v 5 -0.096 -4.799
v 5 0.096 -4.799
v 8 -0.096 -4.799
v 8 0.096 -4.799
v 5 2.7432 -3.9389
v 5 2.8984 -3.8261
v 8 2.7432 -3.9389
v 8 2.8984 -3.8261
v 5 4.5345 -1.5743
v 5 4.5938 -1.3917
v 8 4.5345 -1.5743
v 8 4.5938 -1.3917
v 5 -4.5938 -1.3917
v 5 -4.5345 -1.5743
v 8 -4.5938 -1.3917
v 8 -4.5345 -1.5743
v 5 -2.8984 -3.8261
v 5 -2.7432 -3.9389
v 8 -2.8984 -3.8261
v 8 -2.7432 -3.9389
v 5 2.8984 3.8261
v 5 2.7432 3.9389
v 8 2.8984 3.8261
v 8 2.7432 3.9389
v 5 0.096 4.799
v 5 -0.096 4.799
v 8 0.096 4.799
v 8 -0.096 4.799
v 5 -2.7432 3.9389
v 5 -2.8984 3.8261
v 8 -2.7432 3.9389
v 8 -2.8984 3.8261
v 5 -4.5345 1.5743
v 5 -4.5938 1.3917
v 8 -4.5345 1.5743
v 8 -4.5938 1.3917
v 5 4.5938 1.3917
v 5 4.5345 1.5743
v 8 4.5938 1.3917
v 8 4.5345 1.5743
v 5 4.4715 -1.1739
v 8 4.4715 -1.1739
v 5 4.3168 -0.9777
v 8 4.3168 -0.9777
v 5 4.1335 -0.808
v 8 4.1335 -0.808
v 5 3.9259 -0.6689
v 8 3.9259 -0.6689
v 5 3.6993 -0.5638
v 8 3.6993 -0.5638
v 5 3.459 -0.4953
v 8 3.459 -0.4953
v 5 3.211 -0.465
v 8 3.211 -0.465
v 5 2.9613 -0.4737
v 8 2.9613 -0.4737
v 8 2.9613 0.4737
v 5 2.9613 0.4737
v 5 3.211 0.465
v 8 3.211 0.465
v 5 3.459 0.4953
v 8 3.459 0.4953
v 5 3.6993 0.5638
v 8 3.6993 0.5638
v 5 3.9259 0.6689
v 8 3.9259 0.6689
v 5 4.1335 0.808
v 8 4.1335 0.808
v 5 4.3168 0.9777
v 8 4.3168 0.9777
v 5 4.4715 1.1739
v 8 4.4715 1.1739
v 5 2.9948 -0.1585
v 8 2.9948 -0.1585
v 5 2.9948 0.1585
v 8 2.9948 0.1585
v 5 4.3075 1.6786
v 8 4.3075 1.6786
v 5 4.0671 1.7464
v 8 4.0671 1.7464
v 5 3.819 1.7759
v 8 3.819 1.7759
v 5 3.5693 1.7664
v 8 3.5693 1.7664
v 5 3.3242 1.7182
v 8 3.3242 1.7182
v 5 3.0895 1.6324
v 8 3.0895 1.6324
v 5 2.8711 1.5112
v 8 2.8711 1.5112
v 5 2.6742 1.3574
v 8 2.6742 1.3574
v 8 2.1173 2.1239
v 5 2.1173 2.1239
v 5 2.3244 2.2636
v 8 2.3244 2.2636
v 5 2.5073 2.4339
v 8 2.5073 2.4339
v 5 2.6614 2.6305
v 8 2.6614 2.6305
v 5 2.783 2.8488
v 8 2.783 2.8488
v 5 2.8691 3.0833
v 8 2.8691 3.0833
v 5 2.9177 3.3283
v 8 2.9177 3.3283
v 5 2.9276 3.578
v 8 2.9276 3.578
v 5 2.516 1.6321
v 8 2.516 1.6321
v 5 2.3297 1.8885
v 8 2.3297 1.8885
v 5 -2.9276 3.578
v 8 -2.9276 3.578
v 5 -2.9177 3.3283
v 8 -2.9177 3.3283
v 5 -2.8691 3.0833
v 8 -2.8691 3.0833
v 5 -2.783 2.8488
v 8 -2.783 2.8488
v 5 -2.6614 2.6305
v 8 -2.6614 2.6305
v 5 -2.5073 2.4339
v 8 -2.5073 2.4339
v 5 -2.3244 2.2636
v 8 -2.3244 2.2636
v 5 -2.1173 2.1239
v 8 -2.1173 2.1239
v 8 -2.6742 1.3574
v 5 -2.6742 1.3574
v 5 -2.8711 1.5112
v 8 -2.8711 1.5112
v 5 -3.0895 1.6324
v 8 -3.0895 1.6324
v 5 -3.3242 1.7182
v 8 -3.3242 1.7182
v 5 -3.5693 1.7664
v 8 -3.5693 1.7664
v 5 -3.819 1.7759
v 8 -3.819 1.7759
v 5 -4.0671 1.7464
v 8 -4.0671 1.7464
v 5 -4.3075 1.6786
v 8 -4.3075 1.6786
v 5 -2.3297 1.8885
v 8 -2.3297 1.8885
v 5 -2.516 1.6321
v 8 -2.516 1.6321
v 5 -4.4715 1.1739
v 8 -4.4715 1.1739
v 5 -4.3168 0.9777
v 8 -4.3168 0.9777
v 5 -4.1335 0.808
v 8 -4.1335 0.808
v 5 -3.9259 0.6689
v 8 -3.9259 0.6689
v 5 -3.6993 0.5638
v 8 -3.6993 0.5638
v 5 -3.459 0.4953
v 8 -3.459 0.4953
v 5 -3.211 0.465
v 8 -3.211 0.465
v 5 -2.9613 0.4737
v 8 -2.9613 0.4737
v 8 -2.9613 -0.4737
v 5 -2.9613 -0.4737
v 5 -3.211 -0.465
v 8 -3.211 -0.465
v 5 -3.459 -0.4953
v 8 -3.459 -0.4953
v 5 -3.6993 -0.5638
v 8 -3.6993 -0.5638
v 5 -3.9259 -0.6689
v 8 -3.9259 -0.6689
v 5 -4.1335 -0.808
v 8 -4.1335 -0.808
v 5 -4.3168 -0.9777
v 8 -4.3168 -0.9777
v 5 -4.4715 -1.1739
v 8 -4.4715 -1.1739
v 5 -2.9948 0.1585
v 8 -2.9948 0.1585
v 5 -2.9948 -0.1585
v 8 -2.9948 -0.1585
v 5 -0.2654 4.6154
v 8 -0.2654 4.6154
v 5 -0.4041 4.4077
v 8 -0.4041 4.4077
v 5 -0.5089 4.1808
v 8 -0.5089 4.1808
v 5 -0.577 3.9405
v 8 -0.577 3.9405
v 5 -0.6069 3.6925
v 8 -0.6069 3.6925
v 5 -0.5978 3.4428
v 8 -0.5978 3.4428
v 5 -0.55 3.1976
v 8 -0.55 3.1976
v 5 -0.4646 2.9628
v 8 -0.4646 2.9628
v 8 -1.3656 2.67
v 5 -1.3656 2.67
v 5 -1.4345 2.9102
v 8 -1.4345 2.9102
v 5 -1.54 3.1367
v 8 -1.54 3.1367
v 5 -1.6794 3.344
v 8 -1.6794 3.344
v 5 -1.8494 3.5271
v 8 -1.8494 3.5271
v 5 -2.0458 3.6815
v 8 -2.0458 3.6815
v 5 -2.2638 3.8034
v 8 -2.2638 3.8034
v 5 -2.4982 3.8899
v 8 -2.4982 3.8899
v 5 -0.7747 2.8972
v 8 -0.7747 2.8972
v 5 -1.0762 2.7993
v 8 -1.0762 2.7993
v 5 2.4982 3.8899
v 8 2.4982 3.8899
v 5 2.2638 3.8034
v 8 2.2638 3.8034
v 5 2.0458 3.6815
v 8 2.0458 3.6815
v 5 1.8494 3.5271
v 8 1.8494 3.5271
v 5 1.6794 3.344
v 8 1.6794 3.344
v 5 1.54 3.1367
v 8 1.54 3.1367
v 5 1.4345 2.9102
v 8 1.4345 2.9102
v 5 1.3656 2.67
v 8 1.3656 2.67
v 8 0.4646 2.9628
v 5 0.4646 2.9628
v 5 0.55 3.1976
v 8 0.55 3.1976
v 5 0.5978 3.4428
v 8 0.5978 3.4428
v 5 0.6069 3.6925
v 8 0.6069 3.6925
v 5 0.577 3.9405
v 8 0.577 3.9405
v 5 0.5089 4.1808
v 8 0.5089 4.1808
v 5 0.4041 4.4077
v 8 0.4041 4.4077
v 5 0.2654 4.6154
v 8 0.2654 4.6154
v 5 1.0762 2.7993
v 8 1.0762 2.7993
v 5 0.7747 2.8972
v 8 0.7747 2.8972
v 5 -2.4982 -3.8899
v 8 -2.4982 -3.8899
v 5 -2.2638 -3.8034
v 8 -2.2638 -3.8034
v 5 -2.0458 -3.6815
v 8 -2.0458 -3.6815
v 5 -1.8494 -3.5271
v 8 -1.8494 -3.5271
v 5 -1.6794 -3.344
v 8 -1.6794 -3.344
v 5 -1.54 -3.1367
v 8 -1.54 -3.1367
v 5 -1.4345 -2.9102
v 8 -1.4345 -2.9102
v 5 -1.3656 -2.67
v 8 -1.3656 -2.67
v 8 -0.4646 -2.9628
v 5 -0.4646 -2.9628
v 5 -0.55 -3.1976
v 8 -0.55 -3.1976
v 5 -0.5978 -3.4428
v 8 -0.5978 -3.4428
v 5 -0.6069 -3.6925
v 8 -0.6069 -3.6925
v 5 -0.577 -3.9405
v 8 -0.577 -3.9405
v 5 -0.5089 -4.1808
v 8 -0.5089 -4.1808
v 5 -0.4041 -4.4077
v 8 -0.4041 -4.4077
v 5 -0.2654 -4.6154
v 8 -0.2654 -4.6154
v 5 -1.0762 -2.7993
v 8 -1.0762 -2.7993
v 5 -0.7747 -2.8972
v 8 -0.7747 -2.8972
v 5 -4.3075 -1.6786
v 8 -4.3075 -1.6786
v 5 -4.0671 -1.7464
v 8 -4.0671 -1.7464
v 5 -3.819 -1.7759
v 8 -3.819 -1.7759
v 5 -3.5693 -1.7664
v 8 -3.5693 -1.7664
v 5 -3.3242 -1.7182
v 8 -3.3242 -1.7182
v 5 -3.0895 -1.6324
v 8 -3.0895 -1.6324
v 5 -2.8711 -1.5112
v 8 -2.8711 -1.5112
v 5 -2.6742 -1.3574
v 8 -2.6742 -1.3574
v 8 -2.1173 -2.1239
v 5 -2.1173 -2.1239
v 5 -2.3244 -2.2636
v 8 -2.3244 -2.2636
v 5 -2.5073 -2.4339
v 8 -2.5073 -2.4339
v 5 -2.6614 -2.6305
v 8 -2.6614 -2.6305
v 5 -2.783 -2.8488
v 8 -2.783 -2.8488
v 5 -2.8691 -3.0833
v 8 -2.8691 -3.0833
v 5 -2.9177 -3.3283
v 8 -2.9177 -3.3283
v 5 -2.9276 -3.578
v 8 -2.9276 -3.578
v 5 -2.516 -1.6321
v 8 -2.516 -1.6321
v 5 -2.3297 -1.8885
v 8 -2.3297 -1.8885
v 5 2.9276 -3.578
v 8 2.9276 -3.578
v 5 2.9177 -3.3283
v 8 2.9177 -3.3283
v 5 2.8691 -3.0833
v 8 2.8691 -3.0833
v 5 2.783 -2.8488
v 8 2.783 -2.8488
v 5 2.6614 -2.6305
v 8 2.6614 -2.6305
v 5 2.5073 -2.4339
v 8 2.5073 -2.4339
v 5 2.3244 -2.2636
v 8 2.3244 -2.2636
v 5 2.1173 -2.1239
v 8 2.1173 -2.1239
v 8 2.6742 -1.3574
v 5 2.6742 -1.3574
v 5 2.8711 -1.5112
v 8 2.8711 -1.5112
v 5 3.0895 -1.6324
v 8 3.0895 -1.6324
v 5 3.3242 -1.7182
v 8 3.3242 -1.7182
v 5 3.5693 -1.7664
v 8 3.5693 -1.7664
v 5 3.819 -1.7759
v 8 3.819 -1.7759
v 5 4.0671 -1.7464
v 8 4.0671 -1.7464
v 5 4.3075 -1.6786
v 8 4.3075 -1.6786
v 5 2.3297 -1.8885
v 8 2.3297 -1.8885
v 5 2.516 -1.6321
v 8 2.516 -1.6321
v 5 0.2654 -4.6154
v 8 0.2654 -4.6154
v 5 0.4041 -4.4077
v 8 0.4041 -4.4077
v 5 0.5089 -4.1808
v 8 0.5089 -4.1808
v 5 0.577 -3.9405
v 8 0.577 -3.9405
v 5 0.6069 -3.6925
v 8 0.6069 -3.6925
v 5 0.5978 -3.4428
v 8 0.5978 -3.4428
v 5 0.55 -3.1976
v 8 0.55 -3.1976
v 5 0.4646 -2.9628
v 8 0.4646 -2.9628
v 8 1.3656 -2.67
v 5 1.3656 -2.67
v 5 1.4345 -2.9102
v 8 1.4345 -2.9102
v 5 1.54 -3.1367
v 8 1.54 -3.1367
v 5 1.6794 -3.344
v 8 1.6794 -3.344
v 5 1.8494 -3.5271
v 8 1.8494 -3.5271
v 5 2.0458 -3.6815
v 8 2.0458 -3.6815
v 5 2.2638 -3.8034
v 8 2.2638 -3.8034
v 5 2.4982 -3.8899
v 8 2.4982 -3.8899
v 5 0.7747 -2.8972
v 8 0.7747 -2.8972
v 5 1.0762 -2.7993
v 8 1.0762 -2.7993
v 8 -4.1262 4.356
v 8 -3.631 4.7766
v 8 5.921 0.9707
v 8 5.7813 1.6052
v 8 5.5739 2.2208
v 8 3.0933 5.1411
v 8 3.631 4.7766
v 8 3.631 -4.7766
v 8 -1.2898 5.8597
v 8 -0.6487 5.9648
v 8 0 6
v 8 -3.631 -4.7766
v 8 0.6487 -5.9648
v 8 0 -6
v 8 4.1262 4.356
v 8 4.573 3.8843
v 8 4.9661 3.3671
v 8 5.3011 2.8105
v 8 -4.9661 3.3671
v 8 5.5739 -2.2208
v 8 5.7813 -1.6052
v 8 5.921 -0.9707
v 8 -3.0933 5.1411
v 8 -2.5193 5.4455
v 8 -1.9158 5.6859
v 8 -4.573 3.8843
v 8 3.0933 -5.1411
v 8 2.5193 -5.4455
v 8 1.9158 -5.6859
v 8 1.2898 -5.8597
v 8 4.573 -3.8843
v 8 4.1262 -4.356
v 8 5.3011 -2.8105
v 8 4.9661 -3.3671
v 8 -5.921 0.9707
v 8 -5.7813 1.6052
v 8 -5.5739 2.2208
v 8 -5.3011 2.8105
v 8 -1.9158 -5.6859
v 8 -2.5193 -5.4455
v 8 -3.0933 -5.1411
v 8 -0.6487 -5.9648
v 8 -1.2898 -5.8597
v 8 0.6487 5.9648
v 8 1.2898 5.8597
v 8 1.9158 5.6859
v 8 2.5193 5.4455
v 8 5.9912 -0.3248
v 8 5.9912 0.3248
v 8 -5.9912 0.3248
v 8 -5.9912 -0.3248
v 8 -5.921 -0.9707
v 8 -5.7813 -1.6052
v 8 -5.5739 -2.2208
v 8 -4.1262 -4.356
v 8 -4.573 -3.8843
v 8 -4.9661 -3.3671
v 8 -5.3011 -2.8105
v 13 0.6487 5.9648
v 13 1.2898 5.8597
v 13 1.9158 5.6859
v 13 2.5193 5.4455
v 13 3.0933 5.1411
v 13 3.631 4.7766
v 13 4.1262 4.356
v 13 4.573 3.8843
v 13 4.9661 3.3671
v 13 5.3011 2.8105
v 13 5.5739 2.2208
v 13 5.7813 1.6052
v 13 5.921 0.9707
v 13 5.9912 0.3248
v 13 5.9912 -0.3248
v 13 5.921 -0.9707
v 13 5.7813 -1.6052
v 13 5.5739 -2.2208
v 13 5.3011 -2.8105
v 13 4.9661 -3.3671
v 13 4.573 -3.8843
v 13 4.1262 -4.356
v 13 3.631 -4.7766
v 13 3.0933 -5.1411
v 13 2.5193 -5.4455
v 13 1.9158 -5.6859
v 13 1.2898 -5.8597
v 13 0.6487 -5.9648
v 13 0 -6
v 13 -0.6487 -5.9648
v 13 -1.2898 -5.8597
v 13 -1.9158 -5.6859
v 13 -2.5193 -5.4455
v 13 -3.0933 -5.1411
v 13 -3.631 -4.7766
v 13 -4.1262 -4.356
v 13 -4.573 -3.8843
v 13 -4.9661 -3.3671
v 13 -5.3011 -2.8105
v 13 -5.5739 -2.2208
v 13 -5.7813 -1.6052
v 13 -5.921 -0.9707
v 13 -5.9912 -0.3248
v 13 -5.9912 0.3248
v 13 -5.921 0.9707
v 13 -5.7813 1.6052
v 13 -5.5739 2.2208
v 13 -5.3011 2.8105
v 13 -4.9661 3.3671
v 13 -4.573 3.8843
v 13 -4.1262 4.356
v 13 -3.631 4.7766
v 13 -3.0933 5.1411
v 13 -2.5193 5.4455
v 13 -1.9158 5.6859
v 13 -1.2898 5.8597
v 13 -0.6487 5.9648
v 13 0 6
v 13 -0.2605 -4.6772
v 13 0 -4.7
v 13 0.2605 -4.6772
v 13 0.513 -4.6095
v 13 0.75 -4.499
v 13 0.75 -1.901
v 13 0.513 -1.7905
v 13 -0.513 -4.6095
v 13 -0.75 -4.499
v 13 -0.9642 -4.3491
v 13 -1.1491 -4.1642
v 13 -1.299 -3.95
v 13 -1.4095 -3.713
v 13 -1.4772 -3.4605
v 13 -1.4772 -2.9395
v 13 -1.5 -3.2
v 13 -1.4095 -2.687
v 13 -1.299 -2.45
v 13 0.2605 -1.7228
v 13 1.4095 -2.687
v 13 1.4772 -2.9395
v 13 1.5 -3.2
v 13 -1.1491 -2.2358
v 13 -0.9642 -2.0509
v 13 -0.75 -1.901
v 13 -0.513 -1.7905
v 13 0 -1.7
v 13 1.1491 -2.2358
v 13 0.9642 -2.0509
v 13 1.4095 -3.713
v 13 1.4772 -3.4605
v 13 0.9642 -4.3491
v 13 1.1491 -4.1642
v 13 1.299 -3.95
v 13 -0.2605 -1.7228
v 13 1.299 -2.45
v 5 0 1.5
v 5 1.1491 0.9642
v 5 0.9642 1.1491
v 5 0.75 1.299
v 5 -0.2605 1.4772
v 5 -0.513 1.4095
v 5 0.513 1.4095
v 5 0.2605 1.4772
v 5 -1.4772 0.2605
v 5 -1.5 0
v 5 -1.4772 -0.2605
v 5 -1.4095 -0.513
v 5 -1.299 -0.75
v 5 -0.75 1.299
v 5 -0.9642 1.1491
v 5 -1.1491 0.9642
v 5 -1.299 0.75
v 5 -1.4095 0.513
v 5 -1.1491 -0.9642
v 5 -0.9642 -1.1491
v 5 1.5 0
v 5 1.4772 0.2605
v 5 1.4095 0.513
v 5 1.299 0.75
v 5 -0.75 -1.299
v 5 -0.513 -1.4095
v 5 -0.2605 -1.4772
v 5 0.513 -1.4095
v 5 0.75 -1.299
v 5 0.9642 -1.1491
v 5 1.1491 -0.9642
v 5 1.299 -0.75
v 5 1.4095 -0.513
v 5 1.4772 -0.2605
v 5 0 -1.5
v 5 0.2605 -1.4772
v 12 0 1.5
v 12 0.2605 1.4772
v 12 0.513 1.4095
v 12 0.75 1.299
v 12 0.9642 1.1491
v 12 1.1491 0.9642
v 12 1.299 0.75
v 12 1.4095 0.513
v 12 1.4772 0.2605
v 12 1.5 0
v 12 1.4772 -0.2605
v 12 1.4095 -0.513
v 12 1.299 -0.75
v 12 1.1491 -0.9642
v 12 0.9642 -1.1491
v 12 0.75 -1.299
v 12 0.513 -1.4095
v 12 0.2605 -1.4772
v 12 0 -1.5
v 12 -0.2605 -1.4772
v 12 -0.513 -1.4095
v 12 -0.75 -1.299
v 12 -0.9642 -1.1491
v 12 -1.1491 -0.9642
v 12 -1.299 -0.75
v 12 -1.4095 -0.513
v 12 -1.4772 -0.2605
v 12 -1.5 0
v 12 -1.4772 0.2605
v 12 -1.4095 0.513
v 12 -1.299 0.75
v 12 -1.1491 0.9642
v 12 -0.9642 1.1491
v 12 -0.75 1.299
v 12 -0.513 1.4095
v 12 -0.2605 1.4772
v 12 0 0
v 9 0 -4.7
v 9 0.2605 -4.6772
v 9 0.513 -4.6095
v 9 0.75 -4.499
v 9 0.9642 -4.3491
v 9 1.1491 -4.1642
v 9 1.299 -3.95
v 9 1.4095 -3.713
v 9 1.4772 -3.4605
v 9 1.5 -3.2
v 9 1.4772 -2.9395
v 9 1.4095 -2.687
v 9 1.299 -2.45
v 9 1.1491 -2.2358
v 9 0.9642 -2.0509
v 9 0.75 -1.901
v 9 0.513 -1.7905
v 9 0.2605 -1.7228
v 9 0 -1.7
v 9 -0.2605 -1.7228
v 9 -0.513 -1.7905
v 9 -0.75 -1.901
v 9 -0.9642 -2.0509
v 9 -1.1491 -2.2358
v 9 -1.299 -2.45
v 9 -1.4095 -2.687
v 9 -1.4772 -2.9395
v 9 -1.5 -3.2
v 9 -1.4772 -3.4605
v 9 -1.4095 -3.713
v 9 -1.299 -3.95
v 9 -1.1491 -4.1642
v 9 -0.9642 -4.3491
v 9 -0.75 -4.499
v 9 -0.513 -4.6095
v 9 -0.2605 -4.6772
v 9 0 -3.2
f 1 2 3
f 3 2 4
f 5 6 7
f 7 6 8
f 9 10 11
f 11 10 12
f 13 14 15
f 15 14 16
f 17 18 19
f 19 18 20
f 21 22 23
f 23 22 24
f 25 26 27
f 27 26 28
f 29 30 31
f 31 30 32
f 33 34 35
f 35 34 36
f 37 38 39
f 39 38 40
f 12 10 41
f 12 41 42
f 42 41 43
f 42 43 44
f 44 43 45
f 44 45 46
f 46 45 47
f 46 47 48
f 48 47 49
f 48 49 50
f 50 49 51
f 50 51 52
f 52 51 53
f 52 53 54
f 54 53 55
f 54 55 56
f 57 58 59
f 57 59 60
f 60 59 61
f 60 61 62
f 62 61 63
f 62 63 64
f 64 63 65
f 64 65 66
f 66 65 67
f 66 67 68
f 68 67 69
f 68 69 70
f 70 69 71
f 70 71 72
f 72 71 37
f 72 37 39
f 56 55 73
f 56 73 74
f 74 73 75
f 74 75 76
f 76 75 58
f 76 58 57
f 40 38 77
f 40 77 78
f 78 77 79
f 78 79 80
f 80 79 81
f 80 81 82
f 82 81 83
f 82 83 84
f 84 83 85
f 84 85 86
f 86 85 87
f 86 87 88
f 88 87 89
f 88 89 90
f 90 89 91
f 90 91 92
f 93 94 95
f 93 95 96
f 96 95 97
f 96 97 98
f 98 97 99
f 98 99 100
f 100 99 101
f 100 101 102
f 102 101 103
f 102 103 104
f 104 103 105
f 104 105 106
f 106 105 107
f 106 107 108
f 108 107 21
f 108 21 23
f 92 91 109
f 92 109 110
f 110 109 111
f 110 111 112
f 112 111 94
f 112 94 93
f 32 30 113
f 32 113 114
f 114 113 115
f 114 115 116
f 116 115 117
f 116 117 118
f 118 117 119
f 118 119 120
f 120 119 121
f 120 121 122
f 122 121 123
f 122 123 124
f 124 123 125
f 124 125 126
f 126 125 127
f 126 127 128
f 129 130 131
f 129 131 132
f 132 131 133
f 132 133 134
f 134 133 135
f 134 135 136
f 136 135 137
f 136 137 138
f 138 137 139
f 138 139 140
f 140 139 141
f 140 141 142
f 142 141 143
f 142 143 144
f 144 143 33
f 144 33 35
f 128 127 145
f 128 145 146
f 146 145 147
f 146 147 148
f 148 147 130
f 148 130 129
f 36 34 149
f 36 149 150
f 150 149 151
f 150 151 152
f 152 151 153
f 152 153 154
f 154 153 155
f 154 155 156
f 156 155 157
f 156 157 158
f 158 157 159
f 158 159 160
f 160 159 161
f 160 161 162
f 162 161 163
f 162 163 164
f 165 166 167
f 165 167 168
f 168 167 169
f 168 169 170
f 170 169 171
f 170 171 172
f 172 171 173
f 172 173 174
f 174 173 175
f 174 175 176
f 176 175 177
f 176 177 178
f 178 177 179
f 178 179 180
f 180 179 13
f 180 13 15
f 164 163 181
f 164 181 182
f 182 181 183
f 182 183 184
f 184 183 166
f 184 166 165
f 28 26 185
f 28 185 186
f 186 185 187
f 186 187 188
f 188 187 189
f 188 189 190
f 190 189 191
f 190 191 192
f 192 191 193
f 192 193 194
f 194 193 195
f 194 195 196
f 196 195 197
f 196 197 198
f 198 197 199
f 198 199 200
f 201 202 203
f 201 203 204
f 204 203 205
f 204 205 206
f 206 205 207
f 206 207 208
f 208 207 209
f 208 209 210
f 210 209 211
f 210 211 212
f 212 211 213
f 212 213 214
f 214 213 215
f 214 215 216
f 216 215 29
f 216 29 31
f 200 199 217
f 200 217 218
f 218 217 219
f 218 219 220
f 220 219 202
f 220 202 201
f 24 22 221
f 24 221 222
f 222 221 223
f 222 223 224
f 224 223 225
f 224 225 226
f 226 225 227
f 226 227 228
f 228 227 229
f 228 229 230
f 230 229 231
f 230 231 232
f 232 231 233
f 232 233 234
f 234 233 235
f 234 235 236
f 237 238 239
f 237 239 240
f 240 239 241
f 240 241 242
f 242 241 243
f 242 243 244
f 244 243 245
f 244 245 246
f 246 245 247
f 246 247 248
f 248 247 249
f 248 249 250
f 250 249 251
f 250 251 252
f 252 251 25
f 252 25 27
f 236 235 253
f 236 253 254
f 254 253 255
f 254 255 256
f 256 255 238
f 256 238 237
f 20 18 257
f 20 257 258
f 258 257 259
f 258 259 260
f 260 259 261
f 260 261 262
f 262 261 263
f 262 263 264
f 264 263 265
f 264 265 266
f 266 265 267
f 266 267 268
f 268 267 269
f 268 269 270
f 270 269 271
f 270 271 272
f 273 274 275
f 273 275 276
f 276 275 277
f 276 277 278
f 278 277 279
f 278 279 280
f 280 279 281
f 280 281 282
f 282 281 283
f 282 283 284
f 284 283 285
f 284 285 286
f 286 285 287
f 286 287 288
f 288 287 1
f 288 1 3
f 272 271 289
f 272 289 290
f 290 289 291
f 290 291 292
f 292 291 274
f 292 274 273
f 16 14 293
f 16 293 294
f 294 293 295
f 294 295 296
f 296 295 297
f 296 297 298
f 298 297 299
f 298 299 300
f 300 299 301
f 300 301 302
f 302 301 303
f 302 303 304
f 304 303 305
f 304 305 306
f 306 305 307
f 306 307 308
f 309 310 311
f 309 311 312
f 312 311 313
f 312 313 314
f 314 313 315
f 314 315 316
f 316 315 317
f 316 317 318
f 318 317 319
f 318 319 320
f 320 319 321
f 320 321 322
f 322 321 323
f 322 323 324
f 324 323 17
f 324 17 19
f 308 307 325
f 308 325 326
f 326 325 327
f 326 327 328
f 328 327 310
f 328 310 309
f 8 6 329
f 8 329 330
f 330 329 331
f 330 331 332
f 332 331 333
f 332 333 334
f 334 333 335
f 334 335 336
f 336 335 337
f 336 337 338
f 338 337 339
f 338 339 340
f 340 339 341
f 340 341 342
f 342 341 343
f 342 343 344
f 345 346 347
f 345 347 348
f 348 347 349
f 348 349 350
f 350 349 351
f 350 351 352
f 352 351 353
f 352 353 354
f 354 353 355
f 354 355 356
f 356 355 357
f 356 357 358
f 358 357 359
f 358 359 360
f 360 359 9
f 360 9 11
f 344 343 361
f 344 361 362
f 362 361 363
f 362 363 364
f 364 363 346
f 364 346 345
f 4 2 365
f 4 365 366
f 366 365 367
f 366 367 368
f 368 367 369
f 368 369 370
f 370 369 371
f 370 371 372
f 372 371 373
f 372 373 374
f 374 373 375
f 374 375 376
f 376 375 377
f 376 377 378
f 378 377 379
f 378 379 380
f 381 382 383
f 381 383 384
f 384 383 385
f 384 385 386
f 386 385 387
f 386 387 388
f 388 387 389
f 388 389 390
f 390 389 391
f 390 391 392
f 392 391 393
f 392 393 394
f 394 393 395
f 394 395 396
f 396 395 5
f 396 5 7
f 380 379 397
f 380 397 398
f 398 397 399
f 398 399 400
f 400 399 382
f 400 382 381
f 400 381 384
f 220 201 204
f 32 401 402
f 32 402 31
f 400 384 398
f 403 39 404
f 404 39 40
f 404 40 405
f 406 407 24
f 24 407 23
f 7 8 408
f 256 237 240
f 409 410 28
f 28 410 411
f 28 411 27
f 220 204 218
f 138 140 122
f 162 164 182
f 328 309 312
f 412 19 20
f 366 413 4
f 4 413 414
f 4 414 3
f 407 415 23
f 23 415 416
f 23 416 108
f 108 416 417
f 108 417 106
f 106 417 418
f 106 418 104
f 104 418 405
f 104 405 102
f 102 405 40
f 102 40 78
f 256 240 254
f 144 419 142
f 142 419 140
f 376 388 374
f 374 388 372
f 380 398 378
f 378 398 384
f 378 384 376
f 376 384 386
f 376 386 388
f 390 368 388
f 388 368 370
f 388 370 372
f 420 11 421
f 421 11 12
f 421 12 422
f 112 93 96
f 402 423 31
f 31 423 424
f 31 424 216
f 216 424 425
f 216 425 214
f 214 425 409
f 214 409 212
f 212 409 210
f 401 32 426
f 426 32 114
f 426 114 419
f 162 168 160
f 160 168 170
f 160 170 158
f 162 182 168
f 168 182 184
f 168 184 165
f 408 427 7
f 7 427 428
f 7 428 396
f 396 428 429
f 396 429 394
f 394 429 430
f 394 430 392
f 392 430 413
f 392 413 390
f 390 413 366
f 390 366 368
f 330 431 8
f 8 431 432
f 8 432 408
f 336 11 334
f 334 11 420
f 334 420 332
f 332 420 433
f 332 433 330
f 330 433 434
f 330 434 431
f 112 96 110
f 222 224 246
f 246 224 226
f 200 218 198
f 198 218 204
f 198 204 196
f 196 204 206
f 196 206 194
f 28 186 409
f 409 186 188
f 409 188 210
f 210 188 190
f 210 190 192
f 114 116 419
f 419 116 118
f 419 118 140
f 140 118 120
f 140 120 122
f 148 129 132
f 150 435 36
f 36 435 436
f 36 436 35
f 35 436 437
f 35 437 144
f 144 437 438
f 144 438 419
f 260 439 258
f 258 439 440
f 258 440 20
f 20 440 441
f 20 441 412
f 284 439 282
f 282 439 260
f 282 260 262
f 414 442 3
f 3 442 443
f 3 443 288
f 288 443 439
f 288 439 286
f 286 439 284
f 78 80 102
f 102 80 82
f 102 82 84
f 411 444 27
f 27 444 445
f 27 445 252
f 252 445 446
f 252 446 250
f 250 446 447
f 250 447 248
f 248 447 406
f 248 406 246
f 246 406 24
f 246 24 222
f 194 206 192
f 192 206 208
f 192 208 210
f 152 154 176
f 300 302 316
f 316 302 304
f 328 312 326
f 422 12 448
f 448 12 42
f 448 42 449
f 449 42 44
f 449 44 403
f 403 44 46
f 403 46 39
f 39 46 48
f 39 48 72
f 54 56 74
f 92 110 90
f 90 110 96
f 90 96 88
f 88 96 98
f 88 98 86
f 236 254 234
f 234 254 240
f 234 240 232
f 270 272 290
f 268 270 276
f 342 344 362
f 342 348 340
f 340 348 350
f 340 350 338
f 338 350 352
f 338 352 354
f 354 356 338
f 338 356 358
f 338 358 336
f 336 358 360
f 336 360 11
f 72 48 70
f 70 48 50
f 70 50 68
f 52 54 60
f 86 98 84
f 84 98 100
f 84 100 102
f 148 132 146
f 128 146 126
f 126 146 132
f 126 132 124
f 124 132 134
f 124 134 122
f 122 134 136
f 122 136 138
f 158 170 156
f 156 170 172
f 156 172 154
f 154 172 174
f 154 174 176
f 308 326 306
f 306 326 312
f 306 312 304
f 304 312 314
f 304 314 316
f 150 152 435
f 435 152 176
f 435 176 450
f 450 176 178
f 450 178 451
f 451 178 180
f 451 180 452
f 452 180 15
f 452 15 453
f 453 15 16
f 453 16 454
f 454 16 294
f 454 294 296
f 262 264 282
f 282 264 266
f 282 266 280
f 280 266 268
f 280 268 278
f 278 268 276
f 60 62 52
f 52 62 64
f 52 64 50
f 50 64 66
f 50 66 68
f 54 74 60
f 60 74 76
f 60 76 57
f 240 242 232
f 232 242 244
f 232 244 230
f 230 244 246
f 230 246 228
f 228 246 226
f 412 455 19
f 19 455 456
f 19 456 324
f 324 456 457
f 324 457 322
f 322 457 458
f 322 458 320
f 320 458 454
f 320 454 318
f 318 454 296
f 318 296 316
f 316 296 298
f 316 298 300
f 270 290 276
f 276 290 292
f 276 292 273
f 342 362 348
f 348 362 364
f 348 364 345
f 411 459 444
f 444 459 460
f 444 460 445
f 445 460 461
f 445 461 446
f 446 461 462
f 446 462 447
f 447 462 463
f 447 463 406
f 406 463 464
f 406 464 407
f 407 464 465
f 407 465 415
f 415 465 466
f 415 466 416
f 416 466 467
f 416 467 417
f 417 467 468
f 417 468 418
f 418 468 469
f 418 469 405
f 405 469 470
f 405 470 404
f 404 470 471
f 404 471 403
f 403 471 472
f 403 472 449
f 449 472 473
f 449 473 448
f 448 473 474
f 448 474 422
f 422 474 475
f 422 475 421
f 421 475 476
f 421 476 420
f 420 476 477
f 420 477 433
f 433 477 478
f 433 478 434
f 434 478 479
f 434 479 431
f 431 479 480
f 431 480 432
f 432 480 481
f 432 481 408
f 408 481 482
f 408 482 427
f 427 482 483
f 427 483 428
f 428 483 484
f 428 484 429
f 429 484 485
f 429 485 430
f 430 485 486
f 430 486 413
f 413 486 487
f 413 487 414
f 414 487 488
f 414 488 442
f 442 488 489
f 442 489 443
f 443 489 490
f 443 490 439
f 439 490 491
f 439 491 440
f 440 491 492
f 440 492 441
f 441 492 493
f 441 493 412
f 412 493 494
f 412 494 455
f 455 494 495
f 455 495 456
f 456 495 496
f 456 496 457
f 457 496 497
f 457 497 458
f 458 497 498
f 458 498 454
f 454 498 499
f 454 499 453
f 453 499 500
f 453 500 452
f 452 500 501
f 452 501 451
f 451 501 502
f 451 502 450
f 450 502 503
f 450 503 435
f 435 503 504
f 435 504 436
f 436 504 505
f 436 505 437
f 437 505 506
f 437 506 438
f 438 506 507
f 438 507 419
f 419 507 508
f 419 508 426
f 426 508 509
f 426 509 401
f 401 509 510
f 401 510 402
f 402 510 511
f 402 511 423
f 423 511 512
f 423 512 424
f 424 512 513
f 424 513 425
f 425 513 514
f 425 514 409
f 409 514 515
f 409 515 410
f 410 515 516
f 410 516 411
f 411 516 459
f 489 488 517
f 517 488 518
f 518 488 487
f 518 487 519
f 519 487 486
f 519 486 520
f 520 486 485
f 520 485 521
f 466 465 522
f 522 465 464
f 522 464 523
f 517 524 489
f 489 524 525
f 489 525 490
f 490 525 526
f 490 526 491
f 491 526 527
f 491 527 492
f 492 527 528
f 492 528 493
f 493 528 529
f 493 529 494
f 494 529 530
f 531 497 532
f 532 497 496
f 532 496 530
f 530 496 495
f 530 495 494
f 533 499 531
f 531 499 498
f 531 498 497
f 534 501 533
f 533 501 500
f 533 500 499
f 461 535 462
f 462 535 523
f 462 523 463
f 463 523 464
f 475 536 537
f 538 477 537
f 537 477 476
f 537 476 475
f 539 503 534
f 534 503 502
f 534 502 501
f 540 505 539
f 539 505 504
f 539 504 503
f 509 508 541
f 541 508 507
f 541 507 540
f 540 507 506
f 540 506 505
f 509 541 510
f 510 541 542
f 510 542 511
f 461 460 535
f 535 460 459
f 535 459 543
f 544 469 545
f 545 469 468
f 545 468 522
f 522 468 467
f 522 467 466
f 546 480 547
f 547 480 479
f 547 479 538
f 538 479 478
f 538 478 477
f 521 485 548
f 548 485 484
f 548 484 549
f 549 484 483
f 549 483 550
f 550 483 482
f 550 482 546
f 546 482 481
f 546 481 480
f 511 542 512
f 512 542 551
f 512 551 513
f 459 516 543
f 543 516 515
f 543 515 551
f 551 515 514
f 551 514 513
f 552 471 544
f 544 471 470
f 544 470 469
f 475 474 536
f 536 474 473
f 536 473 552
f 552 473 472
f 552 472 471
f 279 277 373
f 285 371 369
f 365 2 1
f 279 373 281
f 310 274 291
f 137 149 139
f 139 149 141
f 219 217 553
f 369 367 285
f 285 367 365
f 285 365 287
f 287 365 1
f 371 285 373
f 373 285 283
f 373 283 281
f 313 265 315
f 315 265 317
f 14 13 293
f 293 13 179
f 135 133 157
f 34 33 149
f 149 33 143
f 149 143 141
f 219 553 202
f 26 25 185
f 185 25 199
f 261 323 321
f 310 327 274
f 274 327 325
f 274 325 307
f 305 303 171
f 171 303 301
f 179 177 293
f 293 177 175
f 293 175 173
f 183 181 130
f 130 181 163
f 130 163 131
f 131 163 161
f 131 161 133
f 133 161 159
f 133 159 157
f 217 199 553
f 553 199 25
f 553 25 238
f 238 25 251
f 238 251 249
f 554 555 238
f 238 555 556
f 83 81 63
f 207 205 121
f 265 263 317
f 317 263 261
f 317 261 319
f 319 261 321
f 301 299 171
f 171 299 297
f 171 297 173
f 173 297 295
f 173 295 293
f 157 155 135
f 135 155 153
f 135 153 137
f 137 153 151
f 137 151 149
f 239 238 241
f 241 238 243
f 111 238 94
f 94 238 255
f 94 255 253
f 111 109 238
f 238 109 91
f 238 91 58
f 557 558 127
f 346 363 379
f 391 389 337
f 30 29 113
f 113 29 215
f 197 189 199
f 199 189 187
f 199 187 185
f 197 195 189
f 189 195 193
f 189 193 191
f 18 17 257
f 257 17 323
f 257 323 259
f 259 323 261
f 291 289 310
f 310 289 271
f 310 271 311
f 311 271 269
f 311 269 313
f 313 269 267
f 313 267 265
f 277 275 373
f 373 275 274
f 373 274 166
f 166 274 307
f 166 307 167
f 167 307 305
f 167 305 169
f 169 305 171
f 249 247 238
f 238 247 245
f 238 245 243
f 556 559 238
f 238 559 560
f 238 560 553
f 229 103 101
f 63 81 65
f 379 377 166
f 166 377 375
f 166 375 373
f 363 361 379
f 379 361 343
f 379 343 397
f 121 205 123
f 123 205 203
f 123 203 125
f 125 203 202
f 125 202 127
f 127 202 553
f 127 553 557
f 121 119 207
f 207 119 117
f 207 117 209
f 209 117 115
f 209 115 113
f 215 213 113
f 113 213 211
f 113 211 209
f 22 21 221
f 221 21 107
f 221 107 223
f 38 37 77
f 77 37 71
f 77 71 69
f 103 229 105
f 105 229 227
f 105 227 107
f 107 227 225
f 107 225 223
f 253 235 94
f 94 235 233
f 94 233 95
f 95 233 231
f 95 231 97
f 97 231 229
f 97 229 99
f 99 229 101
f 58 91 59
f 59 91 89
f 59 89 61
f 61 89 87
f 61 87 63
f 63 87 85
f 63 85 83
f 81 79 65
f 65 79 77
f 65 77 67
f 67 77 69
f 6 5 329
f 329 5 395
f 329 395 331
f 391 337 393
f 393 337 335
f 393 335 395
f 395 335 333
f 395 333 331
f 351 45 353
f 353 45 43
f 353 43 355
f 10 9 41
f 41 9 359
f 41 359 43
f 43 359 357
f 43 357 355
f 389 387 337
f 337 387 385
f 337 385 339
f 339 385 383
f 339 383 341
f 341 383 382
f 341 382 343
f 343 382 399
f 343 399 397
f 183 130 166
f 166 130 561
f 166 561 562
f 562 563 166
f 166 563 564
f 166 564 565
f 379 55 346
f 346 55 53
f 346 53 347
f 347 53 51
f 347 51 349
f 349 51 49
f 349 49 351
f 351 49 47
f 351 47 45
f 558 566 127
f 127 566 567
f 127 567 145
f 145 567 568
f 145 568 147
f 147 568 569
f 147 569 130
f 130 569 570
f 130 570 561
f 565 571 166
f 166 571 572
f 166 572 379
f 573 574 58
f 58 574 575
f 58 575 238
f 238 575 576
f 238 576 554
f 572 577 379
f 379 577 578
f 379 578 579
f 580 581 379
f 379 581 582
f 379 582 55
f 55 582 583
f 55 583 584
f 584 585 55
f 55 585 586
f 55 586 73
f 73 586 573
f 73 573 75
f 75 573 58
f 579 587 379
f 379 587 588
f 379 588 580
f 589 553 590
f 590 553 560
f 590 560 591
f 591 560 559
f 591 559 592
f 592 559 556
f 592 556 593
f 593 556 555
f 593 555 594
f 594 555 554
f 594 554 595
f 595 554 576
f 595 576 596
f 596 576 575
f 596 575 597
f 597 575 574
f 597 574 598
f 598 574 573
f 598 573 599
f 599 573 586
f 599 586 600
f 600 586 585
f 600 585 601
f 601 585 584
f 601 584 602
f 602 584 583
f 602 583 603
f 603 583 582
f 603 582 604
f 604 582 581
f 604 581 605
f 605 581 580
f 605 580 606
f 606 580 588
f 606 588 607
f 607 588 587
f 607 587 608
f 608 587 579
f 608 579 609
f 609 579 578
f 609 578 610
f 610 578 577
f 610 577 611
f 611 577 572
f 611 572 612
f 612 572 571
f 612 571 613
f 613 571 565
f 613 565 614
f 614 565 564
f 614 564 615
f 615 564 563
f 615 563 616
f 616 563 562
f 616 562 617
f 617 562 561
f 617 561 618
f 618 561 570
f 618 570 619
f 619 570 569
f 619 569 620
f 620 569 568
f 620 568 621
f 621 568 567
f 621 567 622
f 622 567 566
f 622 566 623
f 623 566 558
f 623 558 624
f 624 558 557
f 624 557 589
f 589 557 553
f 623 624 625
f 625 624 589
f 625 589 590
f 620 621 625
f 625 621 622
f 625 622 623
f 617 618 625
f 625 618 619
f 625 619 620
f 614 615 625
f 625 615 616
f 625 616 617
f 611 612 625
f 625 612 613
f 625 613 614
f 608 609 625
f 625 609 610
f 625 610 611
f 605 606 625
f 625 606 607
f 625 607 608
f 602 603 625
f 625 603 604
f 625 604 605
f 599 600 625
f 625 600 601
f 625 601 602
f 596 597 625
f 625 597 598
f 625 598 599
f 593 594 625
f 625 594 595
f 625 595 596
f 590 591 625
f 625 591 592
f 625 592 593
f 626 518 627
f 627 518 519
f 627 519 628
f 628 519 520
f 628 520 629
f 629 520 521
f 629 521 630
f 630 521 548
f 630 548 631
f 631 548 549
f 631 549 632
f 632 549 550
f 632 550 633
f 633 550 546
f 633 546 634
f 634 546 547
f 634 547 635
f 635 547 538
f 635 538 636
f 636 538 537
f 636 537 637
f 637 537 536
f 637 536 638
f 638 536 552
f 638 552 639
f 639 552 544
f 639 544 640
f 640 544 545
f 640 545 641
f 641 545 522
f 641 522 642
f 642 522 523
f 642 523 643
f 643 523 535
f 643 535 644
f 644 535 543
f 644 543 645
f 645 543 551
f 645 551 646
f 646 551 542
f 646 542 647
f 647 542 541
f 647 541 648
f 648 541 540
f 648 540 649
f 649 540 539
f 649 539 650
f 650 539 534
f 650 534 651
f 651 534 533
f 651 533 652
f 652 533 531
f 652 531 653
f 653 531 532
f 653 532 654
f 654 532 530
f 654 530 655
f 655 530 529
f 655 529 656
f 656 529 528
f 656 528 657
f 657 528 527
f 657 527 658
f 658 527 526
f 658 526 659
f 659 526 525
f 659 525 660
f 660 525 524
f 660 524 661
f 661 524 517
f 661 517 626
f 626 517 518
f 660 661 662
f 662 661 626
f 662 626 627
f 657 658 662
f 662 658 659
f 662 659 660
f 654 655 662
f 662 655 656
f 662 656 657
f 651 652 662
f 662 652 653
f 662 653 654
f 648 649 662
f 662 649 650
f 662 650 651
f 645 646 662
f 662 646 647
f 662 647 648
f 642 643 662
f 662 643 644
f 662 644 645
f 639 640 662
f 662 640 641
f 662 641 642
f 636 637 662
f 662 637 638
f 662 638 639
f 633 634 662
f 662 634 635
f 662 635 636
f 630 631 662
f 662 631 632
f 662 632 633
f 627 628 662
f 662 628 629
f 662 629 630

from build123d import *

# Parameters (mm, degrees)
BASPROSKE_W         = 8
BASPROSKE_H         = 4.8
TOOTHCUT_DEPTH      = 11.491901639
TEETHCUTS_COUNT     = 10
BORSKE_R            = 0.4
BORE_DEPTH          = 18.0000508
SKETCH1_R           = 6
BOSS_EXTRUDE1_DEPTH = 5
CUT_EXTRUDE1_DEPTH  = 5
SKETCH4_R           = 1.5
CUT_EXTRUDE2_DEPTH  = 7
SKETCH8_R           = 1.5
CUT_EXTRUDE8_DEPTH  = 4


with BuildPart() as part:
    # BasProSke → Base-Revolve (revolve)
    with BuildSketch(Plane(origin=(0, 0, 0), x_dir=(1, 0, 0), z_dir=(0, 1, 0)), mode=Mode.PRIVATE) as base_revolve_sk:
        with Locations((4, 2.4)):
            Rectangle(BASPROSKE_W, BASPROSKE_H)
    revolve(base_revolve_sk.sketch.rotate(Axis((-10, 0, 0), (1, 0, 0)), 180), axis=Axis((-10, 0, 0), (1, 0, 0)))

    # TooCutSke → ToothCut (cut, through all)
    with BuildSketch(Plane(origin=(0, 0, 0), x_dir=(0, 0, -1), z_dir=(1, 0, 0))):
        with BuildLine():
            ThreePointArc((0.473726058, 2.961348446), (0, 2.999), (-0.473726058, 2.961348446))
            ThreePointArc((-0.473726058, 2.961348446), (-0.678470427, 3.942691912), (-1.42693485, 4.6095924))
            ThreePointArc((-1.42693485, 4.6095924), (0, 4.8254), (1.42693485, 4.6095924))
            ThreePointArc((1.42693485, 4.6095924), (0.678470427, 3.942691912), (0.473726058, 2.961348446))
        make_face()
    toothcut = extrude(amount=TOOTHCUT_DEPTH, mode=Mode.SUBTRACT)

    # TeethCuts: ToothCut ×10 about axis
    teethcuts_axis = Axis((0, 0, 0), (1, 0, 0))
    for i in range(1, TEETHCUTS_COUNT):
        add(toothcut.rotate(teethcuts_axis, i * 360 / TEETHCUTS_COUNT), mode=Mode.SUBTRACT)

    # BorSke → Bore (cut, symmetric)
    with BuildSketch(Plane(origin=(0, 0, 0), x_dir=(0, 0, -1), z_dir=(1, 0, 0))):
        with Locations(Location((0, 0, 0), (0, 0, 180))):
            Circle(BORSKE_R)
    extrude(amount=BORE_DEPTH, both=True, mode=Mode.SUBTRACT)

    # Sketch1 → Boss-Extrude1 (add)
    with BuildSketch(Plane(origin=(8, 0, 0), x_dir=(0, 0, -1), z_dir=(1, 0, 0))):
        Circle(SKETCH1_R)
    extrude(amount=BOSS_EXTRUDE1_DEPTH)

    # Sketch2 → Cut-Extrude1 (cut)
    with BuildSketch(Plane.ZY):
        with BuildLine():
            ThreePointArc((-2.96279914, 0.464566741), (-3.940487364, 0.57700657), (-4.799040651, 0.09596267))
            ThreePointArc((-4.799040651, 0.09596267), (-4.8, 0), (-4.799040651, -0.09596267))
            ThreePointArc((-4.799040651, -0.09596267), (-3.940487364, -0.57700657), (-2.96279914, -0.464566741))
            ThreePointArc((-2.96279914, -0.464566741), (-2.852218492, -0.926741966), (-2.670020334, -1.365647251))
            ThreePointArc((-2.670020334, -1.365647251), (-3.527077196, -1.849352238), (-3.938910885, -2.743169889))
            ThreePointArc((-3.938910885, -2.743169889), (-3.883281573, -2.821369211), (-3.826100001, -2.898440751))
            ThreePointArc((-3.826100001, -2.898440751), (-2.848765291, -2.782968481), (-2.123889376, -2.117332029))
            ThreePointArc((-2.123889376, -2.117332029), (-1.762767972, -2.426241966), (-1.357384512, -2.67423041))
            ThreePointArc((-1.357384512, -2.67423041), (-1.76644342, -3.569321349), (-1.574251041, -4.534504787))
            ThreePointArc((-1.574251041, -4.534504787), (-1.483281573, -4.565071278), (-1.391719195, -4.593812979))
            ThreePointArc((-1.391719195, -4.593812979), (-0.668911703, -3.925931021), (-0.473726058, -2.961348446))
            ThreePointArc((-0.473726058, -2.961348446), (0, -2.999), (0.473726058, -2.961348446))
            ThreePointArc((0.473726058, -2.961348446), (0.668911703, -3.925931021), (1.391719195, -4.593812979))
            ThreePointArc((1.391719195, -4.593812979), (1.483281573, -4.565071278), (1.574251041, -4.534504787))
            ThreePointArc((1.574251041, -4.534504787), (1.76644342, -3.569321349), (1.357384512, -2.67423041))
            ThreePointArc((1.357384512, -2.67423041), (1.762767972, -2.426241966), (2.123889376, -2.117332029))
            ThreePointArc((2.123889376, -2.117332029), (2.848765291, -2.782968481), (3.826100001, -2.898440751))
            ThreePointArc((3.826100001, -2.898440751), (3.883281573, -2.821369211), (3.938910885, -2.743169889))
            ThreePointArc((3.938910885, -2.743169889), (3.527077196, -1.849352238), (2.670020334, -1.365647251))
            ThreePointArc((2.670020334, -1.365647251), (2.852218492, -0.926741966), (2.96279914, -0.464566741))
            ThreePointArc((2.96279914, -0.464566741), (3.940487364, -0.57700657), (4.799040651, -0.09596267))
            ThreePointArc((4.799040651, -0.09596267), (4.8, 0), (4.799040651, 0.09596267))
            ThreePointArc((4.799040651, 0.09596267), (3.940487364, 0.57700657), (2.96279914, 0.464566741))
            ThreePointArc((2.96279914, 0.464566741), (2.852218492, 0.926741966), (2.670020334, 1.365647251))
            ThreePointArc((2.670020334, 1.365647251), (3.527077196, 1.849352238), (3.938910885, 2.743169889))
            ThreePointArc((3.938910885, 2.743169889), (3.883281573, 2.821369211), (3.826100001, 2.898440751))
            ThreePointArc((3.826100001, 2.898440751), (2.848765291, 2.782968481), (2.123889376, 2.117332029))
            ThreePointArc((2.123889376, 2.117332029), (1.762767972, 2.426241966), (1.357384512, 2.67423041))
            ThreePointArc((1.357384512, 2.67423041), (1.76644342, 3.569321349), (1.574251041, 4.534504787))
            ThreePointArc((1.574251041, 4.534504787), (1.483281573, 4.565071278), (1.391719195, 4.593812979))
            ThreePointArc((1.391719195, 4.593812979), (0.668911703, 3.925931021), (0.473726058, 2.961348446))
            ThreePointArc((0.473726058, 2.961348446), (0, 2.999), (-0.473726058, 2.961348446))
            ThreePointArc((-0.473726058, 2.961348446), (-0.668911703, 3.925931021), (-1.391719195, 4.593812979))
            ThreePointArc((-1.391719195, 4.593812979), (-1.483281573, 4.565071278), (-1.574251041, 4.534504787))
            ThreePointArc((-1.574251041, 4.534504787), (-1.76644342, 3.569321349), (-1.357384512, 2.67423041))
            ThreePointArc((-1.357384512, 2.67423041), (-1.762767972, 2.426241966), (-2.123889376, 2.117332029))
            ThreePointArc((-2.123889376, 2.117332029), (-2.848765291, 2.782968481), (-3.826100001, 2.898440751))
            ThreePointArc((-3.826100001, 2.898440751), (-3.883281573, 2.821369211), (-3.938910885, 2.743169889))
            ThreePointArc((-3.938910885, 2.743169889), (-3.527077196, 1.849352238), (-2.670020334, 1.365647251))
            ThreePointArc((-2.670020334, 1.365647251), (-2.852218492, 0.926741966), (-2.96279914, 0.464566741))
        make_face()
    extrude(amount=-CUT_EXTRUDE1_DEPTH, mode=Mode.SUBTRACT)

    # Sketch4 → Cut-Extrude2 (cut)
    with BuildSketch(Plane.ZY.offset(-5)):
        Circle(SKETCH4_R)
    extrude(amount=-CUT_EXTRUDE2_DEPTH, mode=Mode.SUBTRACT)

    # Sketch8 → Cut-Extrude8 (cut)
    with BuildSketch(Plane(origin=(13, 0, 0), x_dir=(0, 0, -1), z_dir=(1, 0, 0))):
        with Locations((3.2, 0)):
            Circle(SKETCH8_R)
    extrude(amount=-CUT_EXTRUDE8_DEPTH, mode=Mode.SUBTRACT)


solid = part.part
